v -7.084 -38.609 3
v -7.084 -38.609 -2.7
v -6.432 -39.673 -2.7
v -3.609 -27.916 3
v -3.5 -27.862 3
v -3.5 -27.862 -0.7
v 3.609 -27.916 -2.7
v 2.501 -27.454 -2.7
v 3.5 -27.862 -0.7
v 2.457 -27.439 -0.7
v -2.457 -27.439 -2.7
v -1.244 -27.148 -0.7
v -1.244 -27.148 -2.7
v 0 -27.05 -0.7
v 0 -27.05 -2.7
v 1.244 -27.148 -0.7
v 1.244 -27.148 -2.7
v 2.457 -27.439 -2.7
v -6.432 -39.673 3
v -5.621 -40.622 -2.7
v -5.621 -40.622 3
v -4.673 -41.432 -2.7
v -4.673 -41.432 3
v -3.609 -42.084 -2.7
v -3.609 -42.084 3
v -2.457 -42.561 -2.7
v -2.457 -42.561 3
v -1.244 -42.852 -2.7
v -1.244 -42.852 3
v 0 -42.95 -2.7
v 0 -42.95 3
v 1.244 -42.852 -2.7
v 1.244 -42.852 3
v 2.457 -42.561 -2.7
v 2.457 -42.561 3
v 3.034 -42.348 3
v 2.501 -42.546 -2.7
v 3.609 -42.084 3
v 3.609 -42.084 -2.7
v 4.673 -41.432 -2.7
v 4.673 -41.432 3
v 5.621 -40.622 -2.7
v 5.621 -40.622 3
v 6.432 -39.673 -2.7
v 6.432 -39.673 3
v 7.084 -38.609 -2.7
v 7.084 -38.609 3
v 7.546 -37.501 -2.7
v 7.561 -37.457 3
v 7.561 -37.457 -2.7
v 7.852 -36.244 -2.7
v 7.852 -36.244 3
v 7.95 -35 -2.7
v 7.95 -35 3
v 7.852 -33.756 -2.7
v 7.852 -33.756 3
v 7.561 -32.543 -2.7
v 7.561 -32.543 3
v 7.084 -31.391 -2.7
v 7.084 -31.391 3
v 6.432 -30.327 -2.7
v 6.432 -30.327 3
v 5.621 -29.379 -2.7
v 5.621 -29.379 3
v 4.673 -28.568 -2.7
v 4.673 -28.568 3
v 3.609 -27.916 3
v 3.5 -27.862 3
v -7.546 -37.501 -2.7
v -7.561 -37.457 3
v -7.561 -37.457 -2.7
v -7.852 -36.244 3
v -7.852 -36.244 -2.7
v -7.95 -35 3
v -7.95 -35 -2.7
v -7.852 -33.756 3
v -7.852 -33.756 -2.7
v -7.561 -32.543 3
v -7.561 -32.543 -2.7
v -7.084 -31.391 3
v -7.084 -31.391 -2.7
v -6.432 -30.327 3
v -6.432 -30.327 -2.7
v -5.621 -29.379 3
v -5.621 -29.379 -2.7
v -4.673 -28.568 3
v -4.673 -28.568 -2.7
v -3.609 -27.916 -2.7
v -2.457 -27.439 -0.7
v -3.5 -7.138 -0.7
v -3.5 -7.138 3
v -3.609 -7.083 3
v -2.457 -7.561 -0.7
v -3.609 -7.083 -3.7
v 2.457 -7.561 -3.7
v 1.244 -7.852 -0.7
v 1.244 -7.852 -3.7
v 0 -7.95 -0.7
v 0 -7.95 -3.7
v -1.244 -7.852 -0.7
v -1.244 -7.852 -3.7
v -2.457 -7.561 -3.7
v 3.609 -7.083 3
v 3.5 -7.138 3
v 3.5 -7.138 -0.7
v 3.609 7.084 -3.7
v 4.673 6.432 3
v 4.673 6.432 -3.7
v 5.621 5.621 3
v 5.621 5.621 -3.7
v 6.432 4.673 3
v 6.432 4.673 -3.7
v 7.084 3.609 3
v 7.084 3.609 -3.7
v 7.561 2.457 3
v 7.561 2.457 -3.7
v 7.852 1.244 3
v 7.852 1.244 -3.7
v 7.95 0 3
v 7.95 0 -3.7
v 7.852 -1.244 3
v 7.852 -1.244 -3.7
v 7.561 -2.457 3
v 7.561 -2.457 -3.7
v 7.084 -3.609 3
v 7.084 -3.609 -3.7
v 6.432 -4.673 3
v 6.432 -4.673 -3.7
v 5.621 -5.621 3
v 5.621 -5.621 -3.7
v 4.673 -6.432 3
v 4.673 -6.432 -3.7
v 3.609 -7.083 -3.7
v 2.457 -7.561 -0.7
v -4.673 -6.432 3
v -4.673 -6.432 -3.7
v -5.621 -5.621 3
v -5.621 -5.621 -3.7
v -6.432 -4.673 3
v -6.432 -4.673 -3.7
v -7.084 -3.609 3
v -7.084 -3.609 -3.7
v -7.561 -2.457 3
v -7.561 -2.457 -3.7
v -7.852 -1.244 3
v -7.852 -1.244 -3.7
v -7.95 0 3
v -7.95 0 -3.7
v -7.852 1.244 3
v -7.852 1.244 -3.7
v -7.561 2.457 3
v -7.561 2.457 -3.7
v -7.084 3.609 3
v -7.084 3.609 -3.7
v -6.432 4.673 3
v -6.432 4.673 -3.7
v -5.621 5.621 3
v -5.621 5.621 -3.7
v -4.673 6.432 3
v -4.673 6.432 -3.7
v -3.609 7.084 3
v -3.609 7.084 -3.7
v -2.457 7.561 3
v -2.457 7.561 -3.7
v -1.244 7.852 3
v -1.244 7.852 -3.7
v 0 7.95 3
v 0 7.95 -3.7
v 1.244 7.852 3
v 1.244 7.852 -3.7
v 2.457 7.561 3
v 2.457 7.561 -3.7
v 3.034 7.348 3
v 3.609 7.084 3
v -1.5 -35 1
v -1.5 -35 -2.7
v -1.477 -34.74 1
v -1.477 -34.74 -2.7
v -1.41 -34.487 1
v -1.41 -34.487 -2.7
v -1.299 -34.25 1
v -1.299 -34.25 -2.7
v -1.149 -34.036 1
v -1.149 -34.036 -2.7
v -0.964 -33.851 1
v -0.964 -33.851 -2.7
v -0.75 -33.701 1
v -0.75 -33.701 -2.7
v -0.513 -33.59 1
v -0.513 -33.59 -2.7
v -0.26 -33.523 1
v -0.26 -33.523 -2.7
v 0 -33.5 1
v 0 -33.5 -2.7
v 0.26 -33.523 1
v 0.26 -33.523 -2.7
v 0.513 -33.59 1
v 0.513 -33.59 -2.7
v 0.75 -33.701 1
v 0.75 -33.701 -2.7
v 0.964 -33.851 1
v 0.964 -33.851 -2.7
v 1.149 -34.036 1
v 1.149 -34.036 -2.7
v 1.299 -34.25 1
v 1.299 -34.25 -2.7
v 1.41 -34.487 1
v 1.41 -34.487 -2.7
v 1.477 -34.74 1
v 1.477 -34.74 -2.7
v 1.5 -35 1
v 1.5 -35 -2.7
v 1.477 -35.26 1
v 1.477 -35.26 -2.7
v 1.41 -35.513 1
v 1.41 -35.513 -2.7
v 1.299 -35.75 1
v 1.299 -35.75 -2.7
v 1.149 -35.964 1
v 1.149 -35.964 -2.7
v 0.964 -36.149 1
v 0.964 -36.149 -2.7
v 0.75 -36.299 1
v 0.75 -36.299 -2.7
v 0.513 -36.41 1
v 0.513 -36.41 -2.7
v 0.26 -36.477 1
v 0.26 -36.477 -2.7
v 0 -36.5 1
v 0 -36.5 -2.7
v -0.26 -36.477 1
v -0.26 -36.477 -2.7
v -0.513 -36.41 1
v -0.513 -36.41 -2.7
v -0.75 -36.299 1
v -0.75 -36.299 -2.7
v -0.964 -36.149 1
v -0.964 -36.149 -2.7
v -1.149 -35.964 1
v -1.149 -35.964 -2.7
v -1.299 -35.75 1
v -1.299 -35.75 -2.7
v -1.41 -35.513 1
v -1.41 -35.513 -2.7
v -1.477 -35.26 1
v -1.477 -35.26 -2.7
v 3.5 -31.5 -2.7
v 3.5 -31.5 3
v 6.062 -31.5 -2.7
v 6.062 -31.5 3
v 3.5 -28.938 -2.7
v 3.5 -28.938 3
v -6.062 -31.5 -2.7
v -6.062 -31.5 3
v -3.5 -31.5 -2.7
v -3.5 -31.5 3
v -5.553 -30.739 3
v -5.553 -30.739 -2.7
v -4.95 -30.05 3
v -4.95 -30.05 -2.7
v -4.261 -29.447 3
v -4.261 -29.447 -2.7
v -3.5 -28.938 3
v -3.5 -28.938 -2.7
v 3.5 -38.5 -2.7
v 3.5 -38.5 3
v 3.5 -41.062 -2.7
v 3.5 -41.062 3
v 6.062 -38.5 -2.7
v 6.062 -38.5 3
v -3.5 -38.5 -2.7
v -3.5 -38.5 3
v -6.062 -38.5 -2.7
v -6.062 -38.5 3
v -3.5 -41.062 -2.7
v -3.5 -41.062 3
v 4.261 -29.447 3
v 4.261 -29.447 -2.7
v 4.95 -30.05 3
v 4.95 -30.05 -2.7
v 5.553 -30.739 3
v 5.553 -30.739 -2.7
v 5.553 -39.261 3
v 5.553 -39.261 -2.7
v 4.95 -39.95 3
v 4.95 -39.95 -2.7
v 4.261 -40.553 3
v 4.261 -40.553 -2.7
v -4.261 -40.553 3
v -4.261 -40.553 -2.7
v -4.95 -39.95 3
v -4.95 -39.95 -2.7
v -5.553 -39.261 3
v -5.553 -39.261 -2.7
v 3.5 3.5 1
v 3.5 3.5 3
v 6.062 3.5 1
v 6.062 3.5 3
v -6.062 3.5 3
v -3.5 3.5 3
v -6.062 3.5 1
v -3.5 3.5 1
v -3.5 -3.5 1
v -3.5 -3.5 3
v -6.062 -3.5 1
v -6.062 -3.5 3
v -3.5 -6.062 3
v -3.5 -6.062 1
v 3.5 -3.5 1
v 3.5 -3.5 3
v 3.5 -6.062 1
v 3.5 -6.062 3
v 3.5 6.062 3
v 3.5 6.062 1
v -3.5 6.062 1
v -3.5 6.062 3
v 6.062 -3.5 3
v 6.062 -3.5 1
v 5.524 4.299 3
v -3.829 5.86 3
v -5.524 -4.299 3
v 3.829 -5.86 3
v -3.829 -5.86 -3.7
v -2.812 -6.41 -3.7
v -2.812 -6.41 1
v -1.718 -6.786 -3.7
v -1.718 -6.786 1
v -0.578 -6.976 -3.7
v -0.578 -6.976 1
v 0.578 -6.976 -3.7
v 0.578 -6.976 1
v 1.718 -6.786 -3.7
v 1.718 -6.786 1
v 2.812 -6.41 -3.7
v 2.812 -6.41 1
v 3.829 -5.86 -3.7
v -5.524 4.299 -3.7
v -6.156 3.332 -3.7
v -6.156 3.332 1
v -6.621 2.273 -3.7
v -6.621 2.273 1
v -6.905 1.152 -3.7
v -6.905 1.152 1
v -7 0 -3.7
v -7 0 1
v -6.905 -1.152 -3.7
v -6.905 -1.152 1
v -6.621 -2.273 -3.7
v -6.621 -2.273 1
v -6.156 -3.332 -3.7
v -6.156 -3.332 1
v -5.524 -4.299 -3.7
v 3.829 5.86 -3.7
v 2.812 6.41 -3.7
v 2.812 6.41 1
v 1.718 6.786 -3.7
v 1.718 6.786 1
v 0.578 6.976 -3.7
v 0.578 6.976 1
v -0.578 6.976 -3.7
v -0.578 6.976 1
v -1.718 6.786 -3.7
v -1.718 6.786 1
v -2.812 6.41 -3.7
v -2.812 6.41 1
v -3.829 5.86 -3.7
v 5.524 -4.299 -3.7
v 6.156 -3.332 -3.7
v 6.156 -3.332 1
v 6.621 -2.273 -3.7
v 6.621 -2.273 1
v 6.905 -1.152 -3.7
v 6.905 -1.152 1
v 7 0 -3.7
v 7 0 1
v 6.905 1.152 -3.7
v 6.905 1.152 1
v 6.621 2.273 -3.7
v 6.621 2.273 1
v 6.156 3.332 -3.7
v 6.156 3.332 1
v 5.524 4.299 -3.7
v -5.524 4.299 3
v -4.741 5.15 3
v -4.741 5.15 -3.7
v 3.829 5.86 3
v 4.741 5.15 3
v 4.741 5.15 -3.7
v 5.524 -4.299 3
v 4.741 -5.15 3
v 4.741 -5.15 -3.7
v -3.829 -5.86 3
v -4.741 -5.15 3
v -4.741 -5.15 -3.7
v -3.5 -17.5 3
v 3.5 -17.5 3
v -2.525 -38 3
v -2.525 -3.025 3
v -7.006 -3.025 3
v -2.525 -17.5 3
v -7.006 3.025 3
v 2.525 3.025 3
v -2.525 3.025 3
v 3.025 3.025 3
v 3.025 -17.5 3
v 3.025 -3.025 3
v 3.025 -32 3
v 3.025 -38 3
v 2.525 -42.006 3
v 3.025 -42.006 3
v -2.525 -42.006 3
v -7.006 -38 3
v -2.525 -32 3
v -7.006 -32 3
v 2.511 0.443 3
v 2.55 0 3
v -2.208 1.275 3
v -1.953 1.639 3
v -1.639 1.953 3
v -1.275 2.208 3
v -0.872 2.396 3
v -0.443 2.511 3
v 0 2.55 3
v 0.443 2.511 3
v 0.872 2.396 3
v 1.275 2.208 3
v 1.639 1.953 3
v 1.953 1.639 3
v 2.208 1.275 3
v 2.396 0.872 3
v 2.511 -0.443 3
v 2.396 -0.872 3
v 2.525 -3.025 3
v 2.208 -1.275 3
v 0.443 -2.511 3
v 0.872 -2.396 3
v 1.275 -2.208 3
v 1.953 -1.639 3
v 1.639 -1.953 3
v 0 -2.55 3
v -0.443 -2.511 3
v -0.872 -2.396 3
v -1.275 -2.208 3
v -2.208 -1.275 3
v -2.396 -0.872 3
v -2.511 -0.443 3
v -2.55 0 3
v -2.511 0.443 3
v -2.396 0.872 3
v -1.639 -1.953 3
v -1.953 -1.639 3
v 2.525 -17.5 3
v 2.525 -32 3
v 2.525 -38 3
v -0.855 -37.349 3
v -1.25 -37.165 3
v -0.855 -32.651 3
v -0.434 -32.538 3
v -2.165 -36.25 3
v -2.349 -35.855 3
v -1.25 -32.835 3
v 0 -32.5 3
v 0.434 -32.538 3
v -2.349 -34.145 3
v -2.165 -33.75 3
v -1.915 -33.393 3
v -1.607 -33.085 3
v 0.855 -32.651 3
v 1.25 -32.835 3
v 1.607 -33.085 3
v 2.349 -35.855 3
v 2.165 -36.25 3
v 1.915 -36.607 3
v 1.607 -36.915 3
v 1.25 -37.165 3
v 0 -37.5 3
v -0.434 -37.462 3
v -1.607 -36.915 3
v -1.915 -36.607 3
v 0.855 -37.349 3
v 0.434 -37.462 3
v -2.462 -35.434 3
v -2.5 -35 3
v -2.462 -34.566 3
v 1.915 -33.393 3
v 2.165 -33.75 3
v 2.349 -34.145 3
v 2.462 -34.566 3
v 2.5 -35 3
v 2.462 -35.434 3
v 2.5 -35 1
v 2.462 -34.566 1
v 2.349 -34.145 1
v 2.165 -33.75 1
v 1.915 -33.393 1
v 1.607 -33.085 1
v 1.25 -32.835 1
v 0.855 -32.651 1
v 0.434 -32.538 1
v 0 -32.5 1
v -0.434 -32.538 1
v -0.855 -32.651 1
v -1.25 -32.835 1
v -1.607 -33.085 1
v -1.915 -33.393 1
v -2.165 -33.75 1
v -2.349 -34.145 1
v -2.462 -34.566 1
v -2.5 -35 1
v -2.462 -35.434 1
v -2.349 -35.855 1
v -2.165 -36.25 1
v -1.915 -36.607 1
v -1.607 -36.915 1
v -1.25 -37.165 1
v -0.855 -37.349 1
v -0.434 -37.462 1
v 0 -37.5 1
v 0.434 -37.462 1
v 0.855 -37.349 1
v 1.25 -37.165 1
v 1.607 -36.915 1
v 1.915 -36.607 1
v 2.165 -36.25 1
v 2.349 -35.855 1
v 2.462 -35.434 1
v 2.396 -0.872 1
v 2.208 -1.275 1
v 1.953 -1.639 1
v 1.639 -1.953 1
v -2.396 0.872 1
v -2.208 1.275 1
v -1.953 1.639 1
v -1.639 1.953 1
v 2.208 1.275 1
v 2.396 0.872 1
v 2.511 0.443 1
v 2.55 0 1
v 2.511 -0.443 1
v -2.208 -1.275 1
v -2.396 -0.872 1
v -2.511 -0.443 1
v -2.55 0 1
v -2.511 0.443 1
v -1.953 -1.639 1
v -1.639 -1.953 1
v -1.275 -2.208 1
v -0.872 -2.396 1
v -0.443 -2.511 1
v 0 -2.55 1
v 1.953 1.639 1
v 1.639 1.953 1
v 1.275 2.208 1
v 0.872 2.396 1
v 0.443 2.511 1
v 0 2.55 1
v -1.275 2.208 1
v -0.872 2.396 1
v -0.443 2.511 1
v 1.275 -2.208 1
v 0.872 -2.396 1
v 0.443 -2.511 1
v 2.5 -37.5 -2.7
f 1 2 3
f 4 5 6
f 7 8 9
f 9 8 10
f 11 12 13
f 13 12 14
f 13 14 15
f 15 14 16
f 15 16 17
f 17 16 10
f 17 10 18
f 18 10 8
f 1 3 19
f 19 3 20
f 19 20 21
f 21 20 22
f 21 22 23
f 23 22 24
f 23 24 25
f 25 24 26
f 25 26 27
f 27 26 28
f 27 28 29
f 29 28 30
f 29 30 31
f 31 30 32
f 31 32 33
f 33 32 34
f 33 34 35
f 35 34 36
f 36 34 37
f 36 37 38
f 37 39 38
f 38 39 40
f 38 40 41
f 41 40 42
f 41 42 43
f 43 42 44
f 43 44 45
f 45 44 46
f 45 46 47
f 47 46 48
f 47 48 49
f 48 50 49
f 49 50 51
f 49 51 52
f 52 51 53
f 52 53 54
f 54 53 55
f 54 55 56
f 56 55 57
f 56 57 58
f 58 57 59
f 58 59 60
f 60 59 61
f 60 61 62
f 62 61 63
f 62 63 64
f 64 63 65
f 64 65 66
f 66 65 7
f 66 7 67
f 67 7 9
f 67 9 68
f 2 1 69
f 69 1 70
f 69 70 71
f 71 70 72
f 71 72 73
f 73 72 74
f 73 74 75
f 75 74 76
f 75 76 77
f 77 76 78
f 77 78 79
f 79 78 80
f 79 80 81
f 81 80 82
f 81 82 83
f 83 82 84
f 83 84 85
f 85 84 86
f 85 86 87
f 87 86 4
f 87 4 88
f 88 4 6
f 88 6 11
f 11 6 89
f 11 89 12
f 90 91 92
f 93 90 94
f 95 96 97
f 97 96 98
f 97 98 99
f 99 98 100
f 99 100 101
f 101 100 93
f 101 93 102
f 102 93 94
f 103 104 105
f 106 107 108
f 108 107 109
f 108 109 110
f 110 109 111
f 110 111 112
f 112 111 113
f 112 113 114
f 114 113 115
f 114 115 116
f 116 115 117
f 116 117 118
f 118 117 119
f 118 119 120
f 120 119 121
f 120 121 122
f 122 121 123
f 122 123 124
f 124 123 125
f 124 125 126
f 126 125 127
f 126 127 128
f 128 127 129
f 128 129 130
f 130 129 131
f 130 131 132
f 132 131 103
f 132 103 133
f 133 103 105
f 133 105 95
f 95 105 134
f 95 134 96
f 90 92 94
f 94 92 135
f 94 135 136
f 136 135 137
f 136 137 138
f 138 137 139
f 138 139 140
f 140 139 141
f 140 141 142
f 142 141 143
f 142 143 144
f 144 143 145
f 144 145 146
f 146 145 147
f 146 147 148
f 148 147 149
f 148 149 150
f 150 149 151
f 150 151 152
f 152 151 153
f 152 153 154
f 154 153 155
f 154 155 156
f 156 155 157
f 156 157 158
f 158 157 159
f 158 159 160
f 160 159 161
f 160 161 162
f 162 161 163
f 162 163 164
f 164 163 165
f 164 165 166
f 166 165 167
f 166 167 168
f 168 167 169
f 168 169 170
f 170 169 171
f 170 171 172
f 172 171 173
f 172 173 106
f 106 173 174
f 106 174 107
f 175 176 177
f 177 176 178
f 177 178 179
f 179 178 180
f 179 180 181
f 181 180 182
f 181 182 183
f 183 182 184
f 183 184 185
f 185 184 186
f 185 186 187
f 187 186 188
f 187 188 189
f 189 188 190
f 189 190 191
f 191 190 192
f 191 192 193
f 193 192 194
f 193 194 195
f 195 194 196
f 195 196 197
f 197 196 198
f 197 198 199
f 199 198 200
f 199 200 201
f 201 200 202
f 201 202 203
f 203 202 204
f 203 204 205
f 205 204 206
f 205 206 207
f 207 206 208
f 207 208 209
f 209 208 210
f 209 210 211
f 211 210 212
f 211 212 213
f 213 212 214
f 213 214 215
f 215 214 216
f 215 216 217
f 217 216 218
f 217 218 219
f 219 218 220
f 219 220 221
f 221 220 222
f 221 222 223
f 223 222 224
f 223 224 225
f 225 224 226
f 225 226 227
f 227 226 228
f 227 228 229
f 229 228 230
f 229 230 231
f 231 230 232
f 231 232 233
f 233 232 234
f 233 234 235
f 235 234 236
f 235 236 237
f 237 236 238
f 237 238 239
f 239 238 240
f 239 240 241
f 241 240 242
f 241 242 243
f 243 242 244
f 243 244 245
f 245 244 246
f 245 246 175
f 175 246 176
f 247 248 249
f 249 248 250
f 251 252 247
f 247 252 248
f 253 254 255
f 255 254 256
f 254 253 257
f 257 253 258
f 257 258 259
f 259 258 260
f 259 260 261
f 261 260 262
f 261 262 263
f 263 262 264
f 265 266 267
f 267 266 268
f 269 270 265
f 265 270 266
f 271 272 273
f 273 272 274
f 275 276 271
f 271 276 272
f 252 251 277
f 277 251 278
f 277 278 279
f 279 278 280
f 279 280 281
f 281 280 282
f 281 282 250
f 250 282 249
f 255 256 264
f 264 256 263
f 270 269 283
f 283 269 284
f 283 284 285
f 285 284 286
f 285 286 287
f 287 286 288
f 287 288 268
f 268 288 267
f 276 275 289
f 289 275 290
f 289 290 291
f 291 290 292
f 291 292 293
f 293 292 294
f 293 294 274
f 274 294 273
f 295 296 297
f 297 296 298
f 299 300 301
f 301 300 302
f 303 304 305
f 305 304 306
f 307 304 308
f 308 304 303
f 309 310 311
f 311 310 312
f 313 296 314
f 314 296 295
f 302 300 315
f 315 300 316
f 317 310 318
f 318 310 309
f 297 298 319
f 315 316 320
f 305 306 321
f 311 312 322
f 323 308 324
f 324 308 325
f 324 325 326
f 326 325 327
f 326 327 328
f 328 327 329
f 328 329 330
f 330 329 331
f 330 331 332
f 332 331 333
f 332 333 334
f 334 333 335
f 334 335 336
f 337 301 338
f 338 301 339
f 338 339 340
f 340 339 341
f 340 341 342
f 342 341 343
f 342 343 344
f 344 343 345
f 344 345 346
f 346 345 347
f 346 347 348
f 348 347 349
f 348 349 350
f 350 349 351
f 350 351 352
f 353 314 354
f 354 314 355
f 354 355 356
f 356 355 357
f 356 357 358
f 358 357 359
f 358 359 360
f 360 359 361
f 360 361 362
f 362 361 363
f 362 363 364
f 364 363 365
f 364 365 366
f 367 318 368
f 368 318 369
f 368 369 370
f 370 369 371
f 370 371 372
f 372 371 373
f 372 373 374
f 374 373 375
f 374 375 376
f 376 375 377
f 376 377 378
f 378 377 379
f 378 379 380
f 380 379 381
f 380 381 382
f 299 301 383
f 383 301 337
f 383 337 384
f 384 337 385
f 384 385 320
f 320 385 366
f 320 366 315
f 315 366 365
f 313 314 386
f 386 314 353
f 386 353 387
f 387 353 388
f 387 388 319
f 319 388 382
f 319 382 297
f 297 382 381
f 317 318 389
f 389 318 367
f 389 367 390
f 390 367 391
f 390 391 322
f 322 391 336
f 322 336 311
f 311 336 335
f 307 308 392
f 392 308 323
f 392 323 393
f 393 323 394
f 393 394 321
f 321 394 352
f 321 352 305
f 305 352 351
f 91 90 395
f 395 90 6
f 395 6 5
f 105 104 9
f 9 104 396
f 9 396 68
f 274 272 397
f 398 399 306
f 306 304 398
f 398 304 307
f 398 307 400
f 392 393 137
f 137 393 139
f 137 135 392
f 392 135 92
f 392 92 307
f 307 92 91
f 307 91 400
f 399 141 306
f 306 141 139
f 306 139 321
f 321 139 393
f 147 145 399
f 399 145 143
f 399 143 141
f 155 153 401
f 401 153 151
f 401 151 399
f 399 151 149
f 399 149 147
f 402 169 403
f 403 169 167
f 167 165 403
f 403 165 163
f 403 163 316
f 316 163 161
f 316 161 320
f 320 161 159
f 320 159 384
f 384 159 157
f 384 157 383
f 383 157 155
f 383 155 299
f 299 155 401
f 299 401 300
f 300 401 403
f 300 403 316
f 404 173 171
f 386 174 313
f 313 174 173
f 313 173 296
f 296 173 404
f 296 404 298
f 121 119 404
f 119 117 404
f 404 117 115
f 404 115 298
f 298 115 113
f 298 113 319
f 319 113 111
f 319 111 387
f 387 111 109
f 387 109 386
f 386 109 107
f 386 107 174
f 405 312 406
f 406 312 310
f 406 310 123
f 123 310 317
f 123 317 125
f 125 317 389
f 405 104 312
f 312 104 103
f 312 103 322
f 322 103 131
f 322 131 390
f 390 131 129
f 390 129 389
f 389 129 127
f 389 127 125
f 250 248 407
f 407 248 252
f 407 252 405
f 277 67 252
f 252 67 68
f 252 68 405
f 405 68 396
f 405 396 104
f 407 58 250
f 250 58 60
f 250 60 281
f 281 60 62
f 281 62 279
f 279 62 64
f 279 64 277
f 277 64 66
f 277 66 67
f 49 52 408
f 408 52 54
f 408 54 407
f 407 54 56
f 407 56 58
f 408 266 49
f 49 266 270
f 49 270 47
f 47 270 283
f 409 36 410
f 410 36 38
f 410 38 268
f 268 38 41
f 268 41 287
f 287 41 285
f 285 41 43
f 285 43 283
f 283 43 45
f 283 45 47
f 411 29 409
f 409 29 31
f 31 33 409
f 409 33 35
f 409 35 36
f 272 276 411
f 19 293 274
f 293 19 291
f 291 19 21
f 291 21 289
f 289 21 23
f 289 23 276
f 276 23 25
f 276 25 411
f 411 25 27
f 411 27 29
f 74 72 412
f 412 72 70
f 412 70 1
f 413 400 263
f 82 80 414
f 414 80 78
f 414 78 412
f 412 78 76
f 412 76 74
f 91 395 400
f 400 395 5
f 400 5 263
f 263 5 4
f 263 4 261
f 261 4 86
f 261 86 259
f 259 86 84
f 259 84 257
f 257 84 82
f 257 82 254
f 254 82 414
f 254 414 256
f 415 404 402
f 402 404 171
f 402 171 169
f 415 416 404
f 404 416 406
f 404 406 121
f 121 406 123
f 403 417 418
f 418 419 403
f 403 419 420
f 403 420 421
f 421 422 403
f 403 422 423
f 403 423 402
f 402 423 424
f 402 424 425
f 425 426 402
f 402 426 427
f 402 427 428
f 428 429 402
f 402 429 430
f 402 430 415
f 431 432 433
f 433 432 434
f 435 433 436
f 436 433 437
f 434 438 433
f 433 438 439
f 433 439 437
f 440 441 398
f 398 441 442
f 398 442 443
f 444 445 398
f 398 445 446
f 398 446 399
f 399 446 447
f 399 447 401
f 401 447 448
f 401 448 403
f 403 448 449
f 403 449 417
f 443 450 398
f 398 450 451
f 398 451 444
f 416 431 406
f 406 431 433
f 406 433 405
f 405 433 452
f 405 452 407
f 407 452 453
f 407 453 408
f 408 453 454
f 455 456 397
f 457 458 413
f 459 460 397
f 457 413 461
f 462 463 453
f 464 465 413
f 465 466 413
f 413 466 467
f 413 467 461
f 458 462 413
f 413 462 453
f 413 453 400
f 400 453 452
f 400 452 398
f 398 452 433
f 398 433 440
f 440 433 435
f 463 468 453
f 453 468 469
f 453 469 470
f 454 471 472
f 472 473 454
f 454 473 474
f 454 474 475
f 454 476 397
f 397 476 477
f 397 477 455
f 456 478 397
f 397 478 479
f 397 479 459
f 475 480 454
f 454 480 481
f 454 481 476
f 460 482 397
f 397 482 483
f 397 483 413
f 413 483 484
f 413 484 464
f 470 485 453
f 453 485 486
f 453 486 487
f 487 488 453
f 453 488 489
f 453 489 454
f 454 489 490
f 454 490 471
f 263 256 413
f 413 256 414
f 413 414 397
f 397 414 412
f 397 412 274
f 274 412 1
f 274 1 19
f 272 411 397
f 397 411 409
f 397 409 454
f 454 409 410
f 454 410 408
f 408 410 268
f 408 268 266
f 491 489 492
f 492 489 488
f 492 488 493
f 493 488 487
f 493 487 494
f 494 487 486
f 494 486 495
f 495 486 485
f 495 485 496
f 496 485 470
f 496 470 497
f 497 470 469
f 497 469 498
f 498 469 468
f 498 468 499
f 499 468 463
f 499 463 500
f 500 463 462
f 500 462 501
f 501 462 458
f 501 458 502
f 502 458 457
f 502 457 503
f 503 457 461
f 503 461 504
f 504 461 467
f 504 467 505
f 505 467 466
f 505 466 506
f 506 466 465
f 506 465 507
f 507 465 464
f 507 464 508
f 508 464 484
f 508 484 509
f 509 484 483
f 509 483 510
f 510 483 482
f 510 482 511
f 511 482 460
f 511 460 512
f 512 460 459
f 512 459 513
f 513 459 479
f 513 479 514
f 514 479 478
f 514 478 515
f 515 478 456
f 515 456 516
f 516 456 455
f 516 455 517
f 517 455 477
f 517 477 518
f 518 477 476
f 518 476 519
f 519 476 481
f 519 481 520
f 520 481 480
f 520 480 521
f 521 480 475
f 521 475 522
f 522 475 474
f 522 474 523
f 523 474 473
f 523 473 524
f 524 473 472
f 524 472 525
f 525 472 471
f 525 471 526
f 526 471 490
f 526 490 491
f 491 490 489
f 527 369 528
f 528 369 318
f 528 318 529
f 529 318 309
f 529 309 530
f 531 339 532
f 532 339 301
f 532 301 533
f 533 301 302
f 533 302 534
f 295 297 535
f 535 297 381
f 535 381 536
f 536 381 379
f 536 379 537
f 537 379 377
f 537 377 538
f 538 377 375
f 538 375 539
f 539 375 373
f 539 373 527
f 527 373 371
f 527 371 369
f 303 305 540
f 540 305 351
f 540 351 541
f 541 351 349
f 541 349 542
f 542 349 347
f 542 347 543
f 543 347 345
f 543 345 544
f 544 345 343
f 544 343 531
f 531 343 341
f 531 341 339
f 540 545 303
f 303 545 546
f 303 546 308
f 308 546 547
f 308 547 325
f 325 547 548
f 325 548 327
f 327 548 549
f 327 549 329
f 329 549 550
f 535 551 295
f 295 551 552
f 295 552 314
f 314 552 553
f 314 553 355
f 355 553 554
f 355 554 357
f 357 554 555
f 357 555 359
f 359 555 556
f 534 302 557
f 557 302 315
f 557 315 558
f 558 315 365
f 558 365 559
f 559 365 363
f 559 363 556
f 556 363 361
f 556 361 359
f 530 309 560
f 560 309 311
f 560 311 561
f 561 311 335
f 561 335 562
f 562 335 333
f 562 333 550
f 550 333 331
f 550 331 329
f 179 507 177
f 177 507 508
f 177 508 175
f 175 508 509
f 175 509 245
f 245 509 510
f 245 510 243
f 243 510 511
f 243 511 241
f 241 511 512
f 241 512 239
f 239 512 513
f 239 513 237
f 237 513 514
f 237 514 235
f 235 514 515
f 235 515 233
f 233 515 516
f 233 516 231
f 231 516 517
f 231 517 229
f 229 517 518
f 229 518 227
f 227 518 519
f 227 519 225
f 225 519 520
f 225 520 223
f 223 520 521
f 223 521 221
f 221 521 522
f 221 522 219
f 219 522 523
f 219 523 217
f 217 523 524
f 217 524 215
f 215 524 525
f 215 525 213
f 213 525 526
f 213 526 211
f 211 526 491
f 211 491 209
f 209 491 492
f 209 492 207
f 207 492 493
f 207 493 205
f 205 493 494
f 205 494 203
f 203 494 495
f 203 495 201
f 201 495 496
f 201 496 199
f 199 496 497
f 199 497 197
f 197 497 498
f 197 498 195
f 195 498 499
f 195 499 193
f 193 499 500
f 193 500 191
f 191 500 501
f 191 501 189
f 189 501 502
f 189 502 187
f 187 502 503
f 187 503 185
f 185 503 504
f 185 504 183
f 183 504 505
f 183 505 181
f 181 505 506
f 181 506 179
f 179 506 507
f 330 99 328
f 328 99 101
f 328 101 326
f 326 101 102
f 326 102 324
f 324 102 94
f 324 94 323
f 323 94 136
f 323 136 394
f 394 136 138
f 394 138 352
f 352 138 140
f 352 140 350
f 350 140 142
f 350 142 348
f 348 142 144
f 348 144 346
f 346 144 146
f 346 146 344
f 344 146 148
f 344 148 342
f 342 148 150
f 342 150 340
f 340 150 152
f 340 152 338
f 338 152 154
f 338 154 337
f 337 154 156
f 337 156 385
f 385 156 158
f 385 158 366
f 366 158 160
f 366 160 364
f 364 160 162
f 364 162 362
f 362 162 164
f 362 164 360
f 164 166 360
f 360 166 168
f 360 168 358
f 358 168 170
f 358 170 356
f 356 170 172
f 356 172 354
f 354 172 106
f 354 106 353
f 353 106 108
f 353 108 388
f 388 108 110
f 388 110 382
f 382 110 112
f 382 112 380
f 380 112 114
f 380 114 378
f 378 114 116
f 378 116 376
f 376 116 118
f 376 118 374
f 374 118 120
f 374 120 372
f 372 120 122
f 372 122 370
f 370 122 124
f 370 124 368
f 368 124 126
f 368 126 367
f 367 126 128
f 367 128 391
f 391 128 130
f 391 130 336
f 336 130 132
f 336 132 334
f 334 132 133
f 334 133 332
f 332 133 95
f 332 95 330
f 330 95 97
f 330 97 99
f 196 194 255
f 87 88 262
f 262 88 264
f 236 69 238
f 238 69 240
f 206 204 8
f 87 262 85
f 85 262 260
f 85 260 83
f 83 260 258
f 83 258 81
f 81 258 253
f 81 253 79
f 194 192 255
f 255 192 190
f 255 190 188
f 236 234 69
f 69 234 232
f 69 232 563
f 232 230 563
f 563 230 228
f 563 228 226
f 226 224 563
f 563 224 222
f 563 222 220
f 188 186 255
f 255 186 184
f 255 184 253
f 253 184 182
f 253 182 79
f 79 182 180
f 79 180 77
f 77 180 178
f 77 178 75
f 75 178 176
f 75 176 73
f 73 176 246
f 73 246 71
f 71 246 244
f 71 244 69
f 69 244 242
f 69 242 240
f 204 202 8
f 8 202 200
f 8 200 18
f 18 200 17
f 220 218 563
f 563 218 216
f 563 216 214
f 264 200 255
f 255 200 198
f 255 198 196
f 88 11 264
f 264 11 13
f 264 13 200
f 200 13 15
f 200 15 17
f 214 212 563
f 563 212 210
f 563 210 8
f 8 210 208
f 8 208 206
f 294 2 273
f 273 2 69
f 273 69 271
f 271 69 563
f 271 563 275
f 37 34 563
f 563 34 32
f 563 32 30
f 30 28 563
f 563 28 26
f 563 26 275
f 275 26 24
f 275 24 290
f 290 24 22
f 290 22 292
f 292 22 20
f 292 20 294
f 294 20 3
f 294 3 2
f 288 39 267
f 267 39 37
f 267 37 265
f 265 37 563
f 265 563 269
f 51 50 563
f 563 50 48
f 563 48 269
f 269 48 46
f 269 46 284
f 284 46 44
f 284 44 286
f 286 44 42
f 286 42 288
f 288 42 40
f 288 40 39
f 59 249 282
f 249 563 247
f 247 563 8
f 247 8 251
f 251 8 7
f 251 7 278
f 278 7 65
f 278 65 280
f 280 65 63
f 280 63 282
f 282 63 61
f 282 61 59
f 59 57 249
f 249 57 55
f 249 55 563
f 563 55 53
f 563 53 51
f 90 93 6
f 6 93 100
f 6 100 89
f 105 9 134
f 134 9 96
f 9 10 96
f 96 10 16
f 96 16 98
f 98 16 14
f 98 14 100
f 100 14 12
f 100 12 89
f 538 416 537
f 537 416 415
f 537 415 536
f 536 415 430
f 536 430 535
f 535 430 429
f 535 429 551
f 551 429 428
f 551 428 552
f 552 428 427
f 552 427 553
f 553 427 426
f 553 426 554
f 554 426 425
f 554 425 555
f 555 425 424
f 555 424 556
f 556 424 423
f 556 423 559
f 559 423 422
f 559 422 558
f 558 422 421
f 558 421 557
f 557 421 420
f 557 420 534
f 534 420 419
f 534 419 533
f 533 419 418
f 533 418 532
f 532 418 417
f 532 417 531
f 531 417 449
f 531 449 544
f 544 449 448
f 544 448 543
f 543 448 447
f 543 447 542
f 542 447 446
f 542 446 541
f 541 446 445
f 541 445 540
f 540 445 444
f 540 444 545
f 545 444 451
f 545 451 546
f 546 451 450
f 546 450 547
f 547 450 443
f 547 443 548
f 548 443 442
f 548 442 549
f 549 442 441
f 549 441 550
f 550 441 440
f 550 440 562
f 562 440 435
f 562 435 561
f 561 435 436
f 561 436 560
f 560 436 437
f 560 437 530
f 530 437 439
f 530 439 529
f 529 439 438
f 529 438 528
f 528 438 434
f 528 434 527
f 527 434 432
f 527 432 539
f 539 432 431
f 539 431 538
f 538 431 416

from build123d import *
from build123d.topology import SkipClean

# Parameters (mm, degrees)
SKETCH1_R           = 3.5
SKETCH1_R_2         = 1.5
BOSS_EXTRUDE4_DEPTH = 3
BOSS_EXTRUDE5_START = 3
SKETCH3_R           = 1.5
BOSS_EXTRUDE5_DEPTH = 3
SKETCH4_R           = 2.5
CUT_EXTRUDE1_DEPTH  = 1.5
SKETCH5_R           = 7
CUT_EXTRUDE2_DEPTH  = 4
SKETCH6_R           = 7.95
CUT_EXTRUDE3_DEPTH  = 1
SKETCH7_R           = 2.5
CUT_EXTRUDE4_DEPTH  = 0.5
BOSS_EXTRUDE6_START = 0.7
SKETCH8_R           = 7.95
SKETCH8_R_2         = 7
BOSS_EXTRUDE6_DEPTH = 0.7
BOSS_EXTRUDE8_START = 0.7
SKETCH9_R           = 7.95
SKETCH9_R_2         = 1.5
BOSS_EXTRUDE8_DEPTH = 0.7
BOSS_EXTRUDE9_START = 0.7
BOSS_EXTRUDE9_DEPTH = 0.7
SKETCH11_R          = 2.55
CUT_EXTRUDE5_DEPTH  = 45.190440143


with BuildPart() as part:
    # Sketch1 → Boss-Extrude4 (new body)
    # profile 1 of 34: a face of its own
    with BuildSketch(Plane.XY):
        with BuildLine():
            Line((-3.5, 3.5), (0, 3.5))
            Line((0, 3.5), (3.5, 3.5))
            Line((3.5, 3.5), (3.5, 6.062177826))
            ThreePointArc((3.5, 6.062177826), (0, 7), (-3.5, 6.062177826))
            Line((-3.5, 6.062177826), (-3.5, 3.5))
        make_face()
    # profile 2 of 34: a face of its own
    with BuildSketch(Plane.XY):
        with BuildLine():
            ThreePointArc((3.5, 6.062177826), (4.949747468, 4.949747468), (6.062177826, 3.5))
            Line((6.062177826, 3.5), (7.138101989, 3.5))
            ThreePointArc((7.138101989, 3.5), (0, 7.95), (-7.138101989, 3.5))
            Line((-7.138101989, 3.5), (-6.062177826, 3.5))
            ThreePointArc((-6.062177826, 3.5), (-4.949747468, 4.949747468), (-3.5, 6.062177826))
            ThreePointArc((-3.5, 6.062177826), (0, 7), (3.5, 6.062177826))
        make_face()
    # profile 3 of 34: a face of its own
    with BuildSketch(Plane.XY):
        with BuildLine():
            Line((3.5, -27.861898011), (3.5, -7.138101989))
            ThreePointArc((3.5, -7.138101989), (0, -7.95), (-3.5, -7.138101989))
            Line((-3.5, -7.138101989), (-3.5, -27.861898011))
            ThreePointArc((-3.5, -27.861898011), (0, -27.05), (3.5, -27.861898011))
        make_face()
    # profile 4 of 34: a face of its own
    with BuildSketch(Plane.XY):
        with BuildLine():
            Line((-6.062177826, -38.5), (-7.138101989, -38.5))
            ThreePointArc((-7.138101989, -38.5), (0, -42.95), (7.138101989, -38.5))
            Line((7.138101989, -38.5), (6.062177826, -38.5))
            ThreePointArc((6.062177826, -38.5), (4.949747468, -39.949747468), (3.5, -41.062177826))
            ThreePointArc((3.5, -41.062177826), (0, -42), (-3.5, -41.062177826))
            ThreePointArc((-3.5, -41.062177826), (-4.949747468, -39.949747468), (-6.062177826, -38.5))
        make_face()
    # profile 5 of 34: a face of its own
    with BuildSketch(Plane.XY):
        with BuildLine():
            Line((3.5, -41.062177826), (3.5, -38.5))
            Line((3.5, -38.5), (0, -38.5))
            Line((0, -38.5), (-3.5, -38.5))
            Line((-3.5, -38.5), (-3.5, -41.062177826))
            ThreePointArc((-3.5, -41.062177826), (0, -42), (3.5, -41.062177826))
        make_face()
    # profile 6 of 34: a face of its own
    with BuildSketch(Plane.XY):
        with BuildLine():
            ThreePointArc((7.95, -35), (7.744366043, -33.203532746), (7.138101989, -31.5))
            Line((7.138101989, -31.5), (6.062177826, -31.5))
            ThreePointArc((6.062177826, -31.5), (6.761480784, -33.188266684), (7, -35))
            ThreePointArc((7, -35), (6.761480784, -36.811733316), (6.062177826, -38.5))
            Line((6.062177826, -38.5), (7.138101989, -38.5))
            ThreePointArc((7.138101989, -38.5), (7.744366043, -36.796467254), (7.95, -35))
        make_face()
    # profile 7 of 34: a face of its own
    with BuildSketch(Plane.XY):
        with BuildLine():
            Line((-6.062177826, -31.5), (-7.138101989, -31.5))
            ThreePointArc((-7.138101989, -31.5), (-7.95, -35), (-7.138101989, -38.5))
            Line((-7.138101989, -38.5), (-6.062177826, -38.5))
            ThreePointArc((-6.062177826, -38.5), (-7, -35), (-6.062177826, -31.5))
        make_face()
    # profile 8 of 34: a face of its own
    with BuildSketch(Plane.XY):
        with BuildLine():
            Line((3.5, -38.5), (3.5, -35))
            ThreePointArc((3.5, -35), (2.474873734, -37.474873734), (0, -38.5))
            Line((0, -38.5), (3.5, -38.5))
        make_face()
    # profile 9 of 34: a face of its own
    with BuildSketch(Plane.XY):
        with BuildLine():
            ThreePointArc((0, -38.5), (-2.474873734, -37.474873734), (-3.5, -35))
            Line((-3.5, -35), (-3.5, -38.5))
            Line((-3.5, -38.5), (0, -38.5))
        make_face()
    # profile 10 of 34: a face of its own
    with BuildSketch(Plane.XY):
        with BuildLine():
            ThreePointArc((7.95, -35), (7.744366043, -33.203532746), (7.138101989, -31.5))
            Line((7.138101989, -31.5), (6.062177826, -31.5))
            ThreePointArc((6.062177826, -31.5), (6.761480784, -33.188266684), (7, -35))
            ThreePointArc((7, -35), (6.761480784, -36.811733316), (6.062177826, -38.5))
            Line((6.062177826, -38.5), (7.138101989, -38.5))
            ThreePointArc((7.138101989, -38.5), (7.744366043, -36.796467254), (7.95, -35))
        make_face()
    # profile 11 of 34: a face of its own
    with BuildSketch(Plane.XY):
        with BuildLine():
            Line((-6.062177826, -31.5), (-7.138101989, -31.5))
            ThreePointArc((-7.138101989, -31.5), (-7.95, -35), (-7.138101989, -38.5))
            Line((-7.138101989, -38.5), (-6.062177826, -38.5))
            ThreePointArc((-6.062177826, -38.5), (-7, -35), (-6.062177826, -31.5))
        make_face()
    # profile 12 of 34: a face of its own
    with BuildSketch(Plane.XY):
        with Locations((0, -35)):
            Circle(SKETCH1_R)
        with Locations((0, -35)):
            Circle(SKETCH1_R_2, mode=Mode.SUBTRACT)
    # profile 13 of 34: a face of its own
    with BuildSketch(Plane.XY):
        with BuildLine():
            Line((0, -31.5), (-3.5, -31.5))
            Line((-3.5, -31.5), (-3.5, -35))
            ThreePointArc((-3.5, -35), (-2.474873734, -32.525126266), (0, -31.5))
        make_face()
    # profile 14 of 34: a face of its own
    with BuildSketch(Plane.XY):
        with BuildLine():
            Line((3.5, -35), (3.5, -31.5))
            Line((3.5, -31.5), (0, -31.5))
            ThreePointArc((0, -31.5), (2.474873734, -32.525126266), (3.5, -35))
        make_face()
    # profile 15 of 34: a face of its own
    with BuildSketch(Plane.XY):
        with BuildLine():
            Line((3.5, -31.5), (3.5, -28.937822174))
            ThreePointArc((3.5, -28.937822174), (0, -28), (-3.5, -28.937822174))
            Line((-3.5, -28.937822174), (-3.5, -31.5))
            Line((-3.5, -31.5), (0, -31.5))
            Line((0, -31.5), (3.5, -31.5))
        make_face()
    # profile 16 of 34: a face of its own
    with BuildSketch(Plane.XY):
        with BuildLine():
            Line((-3.5, -28.937822174), (-3.5, -27.861898011))
            ThreePointArc((-3.5, -27.861898011), (-5.62149891, -29.37850109), (-7.138101989, -31.5))
            Line((-7.138101989, -31.5), (-6.062177826, -31.5))
            ThreePointArc((-6.062177826, -31.5), (-4.949747468, -30.050252532), (-3.5, -28.937822174))
        make_face()
    # profile 17 of 34: a face of its own
    with BuildSketch(Plane.XY):
        with BuildLine():
            ThreePointArc((7.138101989, -31.5), (5.62149891, -29.37850109), (3.5, -27.861898011))
            Line((3.5, -27.861898011), (3.5, -28.937822174))
            ThreePointArc((3.5, -28.937822174), (4.949747468, -30.050252532), (6.062177826, -31.5))
            Line((6.062177826, -31.5), (7.138101989, -31.5))
        make_face()
    # profile 18 of 34: a face of its own
    with BuildSketch(Plane.XY):
        with BuildLine():
            Line((3.5, -28.937822174), (3.5, -27.861898011))
            ThreePointArc((3.5, -27.861898011), (0, -27.05), (-3.5, -27.861898011))
            Line((-3.5, -27.861898011), (-3.5, -28.937822174))
            ThreePointArc((-3.5, -28.937822174), (0, -28), (3.5, -28.937822174))
        make_face()
    # profile 19 of 34: a face of its own
    with BuildSketch(Plane.XY):
        with BuildLine():
            Line((-3.5, -35), (-3.5, -31.5))
            Line((-3.5, -31.5), (-6.062177826, -31.5))
            ThreePointArc((-6.062177826, -31.5), (-7, -35), (-6.062177826, -38.5))
            Line((-6.062177826, -38.5), (-3.5, -38.5))
            Line((-3.5, -38.5), (-3.5, -35))
        make_face()
    # profile 20 of 34: a face of its own
    with BuildSketch(Plane.XY):
        with BuildLine():
            Line((6.062177826, -31.5), (3.5, -31.5))
            Line((3.5, -31.5), (3.5, -35))
            Line((3.5, -35), (3.5, -38.5))
            Line((3.5, -38.5), (6.062177826, -38.5))
            ThreePointArc((6.062177826, -38.5), (6.761480784, -36.811733316), (7, -35))
            ThreePointArc((7, -35), (6.761480784, -33.188266684), (6.062177826, -31.5))
        make_face()
    # profile 21 of 34: a face of its own
    with BuildSketch(Plane.XY):
        with BuildLine():
            Line((3.5, -6.062177826), (3.5, -3.5))
            Line((3.5, -3.5), (0, -3.5))
            Line((0, -3.5), (-3.5, -3.5))
            Line((-3.5, -3.5), (-3.5, -6.062177826))
            ThreePointArc((-3.5, -6.062177826), (0, -7), (3.5, -6.062177826))
        make_face()
    # profile 22 of 34: a face of its own
    with BuildSketch(Plane.XY):
        with BuildLine():
            Line((3.5, -7.138101989), (3.5, -6.062177826))
            ThreePointArc((3.5, -6.062177826), (0, -7), (-3.5, -6.062177826))
            Line((-3.5, -6.062177826), (-3.5, -7.138101989))
            ThreePointArc((-3.5, -7.138101989), (0, -7.95), (3.5, -7.138101989))
        make_face()
    # profile 23 of 34: a face of its own
    with BuildSketch(Plane.XY):
        with BuildLine():
            Line((7.138101989, -3.5), (6.062177826, -3.5))
            ThreePointArc((6.062177826, -3.5), (4.949747468, -4.949747468), (3.5, -6.062177826))
            Line((3.5, -6.062177826), (3.5, -7.138101989))
            ThreePointArc((3.5, -7.138101989), (5.62149891, -5.62149891), (7.138101989, -3.5))
        make_face()
    # profile 24 of 34: a face of its own
    with BuildSketch(Plane.XY):
        with BuildLine():
            Line((7.138101989, 3.5), (6.062177826, 3.5))
            ThreePointArc((6.062177826, 3.5), (6.761480784, 1.811733316), (7, 0))
            ThreePointArc((7, 0), (6.761480784, -1.811733316), (6.062177826, -3.5))
            Line((6.062177826, -3.5), (7.138101989, -3.5))
            ThreePointArc((7.138101989, -3.5), (7.744366043, -1.796467254), (7.95, 0))
            ThreePointArc((7.95, 0), (7.744366043, 1.796467254), (7.138101989, 3.5))
        make_face()
    # profile 25 of 34: a face of its own
    with BuildSketch(Plane.XY):
        with BuildLine():
            Line((7.138101989, 3.5), (6.062177826, 3.5))
            ThreePointArc((6.062177826, 3.5), (6.761480784, 1.811733316), (7, 0))
            ThreePointArc((7, 0), (6.761480784, -1.811733316), (6.062177826, -3.5))
            Line((6.062177826, -3.5), (7.138101989, -3.5))
            ThreePointArc((7.138101989, -3.5), (7.744366043, -1.796467254), (7.95, 0))
            ThreePointArc((7.95, 0), (7.744366043, 1.796467254), (7.138101989, 3.5))
        make_face()
    # profile 26 of 34: a face of its own
    with BuildSketch(Plane.XY):
        with BuildLine():
            ThreePointArc((-6.062177826, -3.5), (-7, 0), (-6.062177826, 3.5))
            Line((-6.062177826, 3.5), (-7.138101989, 3.5))
            ThreePointArc((-7.138101989, 3.5), (-7.95, 0), (-7.138101989, -3.5))
            Line((-7.138101989, -3.5), (-6.062177826, -3.5))
        make_face()
    # profile 27 of 34: a face of its own
    with BuildSketch(Plane.XY):
        with BuildLine():
            ThreePointArc((-3.5, -6.062177826), (-4.949747468, -4.949747468), (-6.062177826, -3.5))
            Line((-6.062177826, -3.5), (-7.138101989, -3.5))
            ThreePointArc((-7.138101989, -3.5), (-5.62149891, -5.62149891), (-3.5, -7.138101989))
            Line((-3.5, -7.138101989), (-3.5, -6.062177826))
        make_face()
    # profile 28 of 34: a face of its own
    with BuildSketch(Plane.XY):
        with BuildLine():
            Line((-3.5, 0), (-3.5, 3.5))
            Line((-3.5, 3.5), (-6.062177826, 3.5))
            ThreePointArc((-6.062177826, 3.5), (-7, 0), (-6.062177826, -3.5))
            Line((-6.062177826, -3.5), (-3.5, -3.5))
            Line((-3.5, -3.5), (-3.5, 0))
        make_face()
    # profile 29 of 34: a face of its own
    with BuildSketch(Plane.XY):
        with BuildLine():
            Line((6.062177826, 3.5), (3.5, 3.5))
            Line((3.5, 3.5), (3.5, 0))
            Line((3.5, 0), (3.5, -3.5))
            Line((3.5, -3.5), (6.062177826, -3.5))
            ThreePointArc((6.062177826, -3.5), (6.761480784, -1.811733316), (7, 0))
            ThreePointArc((7, 0), (6.761480784, 1.811733316), (6.062177826, 3.5))
        make_face()
    # profile 30 of 34: a face of its own
    with BuildSketch(Plane.XY):
        with BuildLine():
            Line((3.5, -3.5), (3.5, 0))
            ThreePointArc((3.5, 0), (2.474873734, -2.474873734), (0, -3.5))
            Line((0, -3.5), (3.5, -3.5))
        make_face()
    # profile 31 of 34: a face of its own
    with BuildSketch(Plane.XY):
        Circle(SKETCH1_R)
        Circle(SKETCH1_R_2, mode=Mode.SUBTRACT)
    # profile 32 of 34: a face of its own
    with BuildSketch(Plane.XY):
        with BuildLine():
            ThreePointArc((0, -3.5), (-2.474873734, -2.474873734), (-3.5, 0))
            Line((-3.5, 0), (-3.5, -3.5))
            Line((-3.5, -3.5), (0, -3.5))
        make_face()
    # profile 33 of 34: a face of its own
    with BuildSketch(Plane.XY):
        with BuildLine():
            ThreePointArc((-3.5, 0), (-2.474873734, 2.474873734), (0, 3.5))
            Line((0, 3.5), (-3.5, 3.5))
            Line((-3.5, 3.5), (-3.5, 0))
        make_face()
    # profile 34 of 34: a face of its own
    with BuildSketch(Plane.XY):
        with BuildLine():
            Line((3.5, 3.5), (0, 3.5))
            ThreePointArc((0, 3.5), (2.474873734, 2.474873734), (3.5, 0))
            Line((3.5, 0), (3.5, 3.5))
        make_face()
    extrude(amount=BOSS_EXTRUDE4_DEPTH)

    # Sketch3 → Boss-Extrude5 (add)
    # profile 1 of 4: a face of its own
    with SkipClean():  # the faces are left unmerged after this step: merging them gives an invalid solid
        with BuildSketch(Plane(origin=(0, 0, 0), x_dir=(-1, 0, 0), z_dir=(0, 0, -1)).offset(BOSS_EXTRUDE5_START)):
            with BuildLine():
                ThreePointArc((3.5, -7.138101989), (6.746387922, -4.205799567), (7.95, 0))
                ThreePointArc((7.95, 0), (-4.205799567, 6.746387922), (-3.5, -7.138101989))
                ThreePointArc((-3.5, -7.138101989), (0, -7.95), (3.5, -7.138101989))
            make_face()
            with BuildLine():
                ThreePointArc((-6.062177826, 3.5), (-4.949747468, 4.949747468), (-3.5, 6.062177826))
                ThreePointArc((-3.5, 6.062177826), (0, 7), (3.5, 6.062177826))
                ThreePointArc((3.5, 6.062177826), (4.949747468, 4.949747468), (6.062177826, 3.5))
                ThreePointArc((6.062177826, 3.5), (6.761480784, 1.811733316), (7, 0))
                ThreePointArc((7, 0), (6.761480784, -1.811733316), (6.062177826, -3.5))
                ThreePointArc((6.062177826, -3.5), (4.949747468, -4.949747468), (3.5, -6.062177826))
                ThreePointArc((3.5, -6.062177826), (0, -7), (-3.5, -6.062177826))
                ThreePointArc((-3.5, -6.062177826), (-4.949747468, -4.949747468), (-6.062177826, -3.5))
                ThreePointArc((-6.062177826, -3.5), (-7, 0), (-6.062177826, 3.5))
            make_face(mode=Mode.SUBTRACT)
        # profile 2 of 4: a face of its own
        with BuildSketch(Plane(origin=(0, 0, 0), x_dir=(-1, 0, 0), z_dir=(0, 0, -1)).offset(BOSS_EXTRUDE5_START)):
            with BuildLine():
                ThreePointArc((3.5, 6.062177826), (0, 7), (-3.5, 6.062177826))
                Line((-3.5, 6.062177826), (-3.5, 3.5))
                Line((-3.5, 3.5), (-6.062177826, 3.5))
                ThreePointArc((-6.062177826, 3.5), (-7, 0), (-6.062177826, -3.5))
                Line((-6.062177826, -3.5), (-3.5, -3.5))
                Line((-3.5, -3.5), (-3.5, -6.062177826))
                ThreePointArc((-3.5, -6.062177826), (0, -7), (3.5, -6.062177826))
                Line((3.5, -6.062177826), (3.5, -3.5))
                Line((3.5, -3.5), (6.062177826, -3.5))
                ThreePointArc((6.062177826, -3.5), (6.761480784, -1.811733316), (7, 0))
                ThreePointArc((7, 0), (6.761480784, 1.811733316), (6.062177826, 3.5))
                Line((6.062177826, 3.5), (3.5, 3.5))
                Line((3.5, 3.5), (3.5, 6.062177826))
            make_face()
            Circle(SKETCH3_R, mode=Mode.SUBTRACT)
        # profile 3 of 4: a face of its own
        with BuildSketch(Plane(origin=(0, 0, 0), x_dir=(-1, 0, 0), z_dir=(0, 0, -1)).offset(BOSS_EXTRUDE5_START)):
            with BuildLine():
                ThreePointArc((-3.5, -27.861898011), (-4.205799567, -41.746387922), (7.95, -35))
                ThreePointArc((7.95, -35), (6.746387922, -30.794200433), (3.5, -27.861898011))
                ThreePointArc((3.5, -27.861898011), (0, -27.05), (-3.5, -27.861898011))
            make_face()
            with BuildLine():
                ThreePointArc((6.062177826, -38.5), (4.949747468, -39.949747468), (3.5, -41.062177826))
                ThreePointArc((3.5, -41.062177826), (0, -42), (-3.5, -41.062177826))
                ThreePointArc((-3.5, -41.062177826), (-4.949747468, -39.949747468), (-6.062177826, -38.5))
                ThreePointArc((-6.062177826, -38.5), (-7, -35), (-6.062177826, -31.5))
                ThreePointArc((-6.062177826, -31.5), (-4.949747468, -30.050252532), (-3.5, -28.937822174))
                ThreePointArc((-3.5, -28.937822174), (0, -28), (3.5, -28.937822174))
                ThreePointArc((3.5, -28.937822174), (4.949747468, -30.050252532), (6.062177826, -31.5))
                ThreePointArc((6.062177826, -31.5), (6.761480784, -33.188266684), (7, -35))
                ThreePointArc((7, -35), (6.761480784, -36.811733316), (6.062177826, -38.5))
            make_face(mode=Mode.SUBTRACT)
        # profile 4 of 4: a face of its own
        with BuildSketch(Plane(origin=(0, 0, 0), x_dir=(-1, 0, 0), z_dir=(0, 0, -1)).offset(BOSS_EXTRUDE5_START)):
            with BuildLine():
                ThreePointArc((-3.5, -41.062177826), (0, -42), (3.5, -41.062177826))
                Line((3.5, -41.062177826), (3.5, -38.5))
                Line((3.5, -38.5), (6.062177826, -38.5))
                ThreePointArc((6.062177826, -38.5), (6.761480784, -36.811733316), (7, -35))
                ThreePointArc((7, -35), (6.761480784, -33.188266684), (6.062177826, -31.5))
                Line((6.062177826, -31.5), (3.5, -31.5))
                Line((3.5, -31.5), (3.5, -28.937822174))
                ThreePointArc((3.5, -28.937822174), (0, -28), (-3.5, -28.937822174))
                Line((-3.5, -28.937822174), (-3.5, -31.5))
                Line((-3.5, -31.5), (-6.062177826, -31.5))
                ThreePointArc((-6.062177826, -31.5), (-7, -35), (-6.062177826, -38.5))
                Line((-6.062177826, -38.5), (-3.5, -38.5))
                Line((-3.5, -38.5), (-3.5, -41.062177826))
            make_face()
            with Locations((0, -35)):
                Circle(SKETCH3_R, mode=Mode.SUBTRACT)
        extrude(amount=-BOSS_EXTRUDE5_DEPTH)

    # Sketch4 → Cut-Extrude1 (cut)
    with SkipClean():  # the faces are left unmerged after this step: merging them gives an invalid solid
        with BuildSketch(Plane.XY.offset(3)):
            with Locations((0, -35)):
                Circle(SKETCH4_R)
            with Locations(Location((0, 0, 0), (0, 0, 180))):
                Circle(SKETCH4_R)
        extrude(amount=-CUT_EXTRUDE1_DEPTH, mode=Mode.SUBTRACT)

    # Sketch5 → Cut-Extrude2 (cut)
    with SkipClean():  # the faces are left unmerged after this step: merging them gives an invalid solid
        with BuildSketch(Plane(origin=(0, 0, -3), x_dir=(-1, 0, 0), z_dir=(0, 0, -1))):
            Circle(SKETCH5_R)
        extrude(amount=-CUT_EXTRUDE2_DEPTH, mode=Mode.SUBTRACT)

    # Sketch6 → Cut-Extrude3 (cut)
    with SkipClean():  # the faces are left unmerged after this step: merging them gives an invalid solid
        with BuildSketch(Plane(origin=(0, 0, -3), x_dir=(-1, 0, 0), z_dir=(0, 0, -1))):
            with Locations((0, -35)):
                Circle(SKETCH6_R)
        extrude(amount=-CUT_EXTRUDE3_DEPTH, mode=Mode.SUBTRACT)

    # Sketch7 → Cut-Extrude4 (cut)
    with SkipClean():  # the faces are left unmerged after this step: merging them gives an invalid solid
        with BuildSketch(Plane.XY.offset(1.5)):
            with Locations((0, -35)):
                Circle(SKETCH7_R)
        extrude(amount=-CUT_EXTRUDE4_DEPTH, mode=Mode.SUBTRACT)

    # Sketch8 → Boss-Extrude6 (add)
    with SkipClean():  # the faces are left unmerged after this step: merging them gives an invalid solid
        with BuildSketch(Plane(origin=(0, 0, -3), x_dir=(-1, 0, 0), z_dir=(0, 0, -1)).offset(BOSS_EXTRUDE6_START)):
            Circle(SKETCH8_R)
            Circle(SKETCH8_R_2, mode=Mode.SUBTRACT)
        extrude(amount=-BOSS_EXTRUDE6_DEPTH)

    # Sketch9 → Boss-Extrude8 (add)
    # profile 1 of 2: a face of its own
    with SkipClean():  # the faces are left unmerged after this step: merging them gives an invalid solid
        with BuildSketch(Plane(origin=(0, 0, -2), x_dir=(-1, 0, 0), z_dir=(0, 0, -1)).offset(BOSS_EXTRUDE8_START)):
            with Locations((0, -35)):
                Circle(SKETCH9_R)
            with BuildLine():
                ThreePointArc((-6.062177826, -31.5), (-4.949747468, -30.050252532), (-3.5, -28.937822174))
                ThreePointArc((-3.5, -28.937822174), (0, -28), (3.5, -28.937822174))
                ThreePointArc((3.5, -28.937822174), (4.949747468, -30.050252532), (6.062177826, -31.5))
                ThreePointArc((6.062177826, -31.5), (6.761480784, -33.188266684), (7, -35))
                ThreePointArc((7, -35), (6.761480784, -36.811733316), (6.062177826, -38.5))
                ThreePointArc((6.062177826, -38.5), (4.949747468, -39.949747468), (3.5, -41.062177826))
                ThreePointArc((3.5, -41.062177826), (0, -42), (-3.5, -41.062177826))
                ThreePointArc((-3.5, -41.062177826), (-4.949747468, -39.949747468), (-6.062177826, -38.5))
                ThreePointArc((-6.062177826, -38.5), (-7, -35), (-6.062177826, -31.5))
            make_face(mode=Mode.SUBTRACT)
        # profile 2 of 2: a face of its own
        with BuildSketch(Plane(origin=(0, 0, -2), x_dir=(-1, 0, 0), z_dir=(0, 0, -1)).offset(BOSS_EXTRUDE8_START)):
            with BuildLine():
                ThreePointArc((3.5, -28.937822174), (0, -28), (-3.5, -28.937822174))
                Line((-3.5, -28.937822174), (-3.5, -31.5))
                Line((-3.5, -31.5), (-6.062177826, -31.5))
                ThreePointArc((-6.062177826, -31.5), (-7, -35), (-6.062177826, -38.5))
                Line((-6.062177826, -38.5), (-3.5, -38.5))
                Line((-3.5, -38.5), (-3.5, -41.062177826))
                ThreePointArc((-3.5, -41.062177826), (0, -42), (3.5, -41.062177826))
                Line((3.5, -41.062177826), (3.5, -38.5))
                Line((3.5, -38.5), (6.062177826, -38.5))
                ThreePointArc((6.062177826, -38.5), (6.761480784, -36.811733316), (7, -35))
                ThreePointArc((7, -35), (6.761480784, -33.188266684), (6.062177826, -31.5))
                Line((6.062177826, -31.5), (3.5, -31.5))
                Line((3.5, -31.5), (3.5, -28.937822174))
            make_face()
            with Locations((0, -35)):
                Circle(SKETCH9_R_2, mode=Mode.SUBTRACT)
        extrude(amount=-BOSS_EXTRUDE8_DEPTH)

    # Sketch10 → Boss-Extrude9 (add)
    with SkipClean():  # the faces are left unmerged after this step: merging them gives an invalid solid
        with BuildSketch(Plane(origin=(0, 0, 0), x_dir=(-1, 0, 0), z_dir=(0, 0, -1)).offset(BOSS_EXTRUDE9_START)):
            with BuildLine():
                ThreePointArc((3.5, -7.138101989), (0, -7.95), (-3.5, -7.138101989))
                Line((-3.5, -7.138101989), (-3.5, -27.861898011))
                ThreePointArc((-3.5, -27.861898011), (0, -27.05), (3.5, -27.861898011))
                Line((3.5, -27.861898011), (3.5, -7.138101989))
            make_face()
        extrude(amount=-BOSS_EXTRUDE9_DEPTH)

    # Sketch11 → Cut-Extrude5 (cut, through all)
    with SkipClean():  # the faces are left unmerged after this step: merging them gives an invalid solid
        with BuildSketch(Plane.XY.offset(3)):
            Circle(SKETCH11_R)
        extrude(amount=-CUT_EXTRUDE5_DEPTH, mode=Mode.SUBTRACT)


solid = part.part
